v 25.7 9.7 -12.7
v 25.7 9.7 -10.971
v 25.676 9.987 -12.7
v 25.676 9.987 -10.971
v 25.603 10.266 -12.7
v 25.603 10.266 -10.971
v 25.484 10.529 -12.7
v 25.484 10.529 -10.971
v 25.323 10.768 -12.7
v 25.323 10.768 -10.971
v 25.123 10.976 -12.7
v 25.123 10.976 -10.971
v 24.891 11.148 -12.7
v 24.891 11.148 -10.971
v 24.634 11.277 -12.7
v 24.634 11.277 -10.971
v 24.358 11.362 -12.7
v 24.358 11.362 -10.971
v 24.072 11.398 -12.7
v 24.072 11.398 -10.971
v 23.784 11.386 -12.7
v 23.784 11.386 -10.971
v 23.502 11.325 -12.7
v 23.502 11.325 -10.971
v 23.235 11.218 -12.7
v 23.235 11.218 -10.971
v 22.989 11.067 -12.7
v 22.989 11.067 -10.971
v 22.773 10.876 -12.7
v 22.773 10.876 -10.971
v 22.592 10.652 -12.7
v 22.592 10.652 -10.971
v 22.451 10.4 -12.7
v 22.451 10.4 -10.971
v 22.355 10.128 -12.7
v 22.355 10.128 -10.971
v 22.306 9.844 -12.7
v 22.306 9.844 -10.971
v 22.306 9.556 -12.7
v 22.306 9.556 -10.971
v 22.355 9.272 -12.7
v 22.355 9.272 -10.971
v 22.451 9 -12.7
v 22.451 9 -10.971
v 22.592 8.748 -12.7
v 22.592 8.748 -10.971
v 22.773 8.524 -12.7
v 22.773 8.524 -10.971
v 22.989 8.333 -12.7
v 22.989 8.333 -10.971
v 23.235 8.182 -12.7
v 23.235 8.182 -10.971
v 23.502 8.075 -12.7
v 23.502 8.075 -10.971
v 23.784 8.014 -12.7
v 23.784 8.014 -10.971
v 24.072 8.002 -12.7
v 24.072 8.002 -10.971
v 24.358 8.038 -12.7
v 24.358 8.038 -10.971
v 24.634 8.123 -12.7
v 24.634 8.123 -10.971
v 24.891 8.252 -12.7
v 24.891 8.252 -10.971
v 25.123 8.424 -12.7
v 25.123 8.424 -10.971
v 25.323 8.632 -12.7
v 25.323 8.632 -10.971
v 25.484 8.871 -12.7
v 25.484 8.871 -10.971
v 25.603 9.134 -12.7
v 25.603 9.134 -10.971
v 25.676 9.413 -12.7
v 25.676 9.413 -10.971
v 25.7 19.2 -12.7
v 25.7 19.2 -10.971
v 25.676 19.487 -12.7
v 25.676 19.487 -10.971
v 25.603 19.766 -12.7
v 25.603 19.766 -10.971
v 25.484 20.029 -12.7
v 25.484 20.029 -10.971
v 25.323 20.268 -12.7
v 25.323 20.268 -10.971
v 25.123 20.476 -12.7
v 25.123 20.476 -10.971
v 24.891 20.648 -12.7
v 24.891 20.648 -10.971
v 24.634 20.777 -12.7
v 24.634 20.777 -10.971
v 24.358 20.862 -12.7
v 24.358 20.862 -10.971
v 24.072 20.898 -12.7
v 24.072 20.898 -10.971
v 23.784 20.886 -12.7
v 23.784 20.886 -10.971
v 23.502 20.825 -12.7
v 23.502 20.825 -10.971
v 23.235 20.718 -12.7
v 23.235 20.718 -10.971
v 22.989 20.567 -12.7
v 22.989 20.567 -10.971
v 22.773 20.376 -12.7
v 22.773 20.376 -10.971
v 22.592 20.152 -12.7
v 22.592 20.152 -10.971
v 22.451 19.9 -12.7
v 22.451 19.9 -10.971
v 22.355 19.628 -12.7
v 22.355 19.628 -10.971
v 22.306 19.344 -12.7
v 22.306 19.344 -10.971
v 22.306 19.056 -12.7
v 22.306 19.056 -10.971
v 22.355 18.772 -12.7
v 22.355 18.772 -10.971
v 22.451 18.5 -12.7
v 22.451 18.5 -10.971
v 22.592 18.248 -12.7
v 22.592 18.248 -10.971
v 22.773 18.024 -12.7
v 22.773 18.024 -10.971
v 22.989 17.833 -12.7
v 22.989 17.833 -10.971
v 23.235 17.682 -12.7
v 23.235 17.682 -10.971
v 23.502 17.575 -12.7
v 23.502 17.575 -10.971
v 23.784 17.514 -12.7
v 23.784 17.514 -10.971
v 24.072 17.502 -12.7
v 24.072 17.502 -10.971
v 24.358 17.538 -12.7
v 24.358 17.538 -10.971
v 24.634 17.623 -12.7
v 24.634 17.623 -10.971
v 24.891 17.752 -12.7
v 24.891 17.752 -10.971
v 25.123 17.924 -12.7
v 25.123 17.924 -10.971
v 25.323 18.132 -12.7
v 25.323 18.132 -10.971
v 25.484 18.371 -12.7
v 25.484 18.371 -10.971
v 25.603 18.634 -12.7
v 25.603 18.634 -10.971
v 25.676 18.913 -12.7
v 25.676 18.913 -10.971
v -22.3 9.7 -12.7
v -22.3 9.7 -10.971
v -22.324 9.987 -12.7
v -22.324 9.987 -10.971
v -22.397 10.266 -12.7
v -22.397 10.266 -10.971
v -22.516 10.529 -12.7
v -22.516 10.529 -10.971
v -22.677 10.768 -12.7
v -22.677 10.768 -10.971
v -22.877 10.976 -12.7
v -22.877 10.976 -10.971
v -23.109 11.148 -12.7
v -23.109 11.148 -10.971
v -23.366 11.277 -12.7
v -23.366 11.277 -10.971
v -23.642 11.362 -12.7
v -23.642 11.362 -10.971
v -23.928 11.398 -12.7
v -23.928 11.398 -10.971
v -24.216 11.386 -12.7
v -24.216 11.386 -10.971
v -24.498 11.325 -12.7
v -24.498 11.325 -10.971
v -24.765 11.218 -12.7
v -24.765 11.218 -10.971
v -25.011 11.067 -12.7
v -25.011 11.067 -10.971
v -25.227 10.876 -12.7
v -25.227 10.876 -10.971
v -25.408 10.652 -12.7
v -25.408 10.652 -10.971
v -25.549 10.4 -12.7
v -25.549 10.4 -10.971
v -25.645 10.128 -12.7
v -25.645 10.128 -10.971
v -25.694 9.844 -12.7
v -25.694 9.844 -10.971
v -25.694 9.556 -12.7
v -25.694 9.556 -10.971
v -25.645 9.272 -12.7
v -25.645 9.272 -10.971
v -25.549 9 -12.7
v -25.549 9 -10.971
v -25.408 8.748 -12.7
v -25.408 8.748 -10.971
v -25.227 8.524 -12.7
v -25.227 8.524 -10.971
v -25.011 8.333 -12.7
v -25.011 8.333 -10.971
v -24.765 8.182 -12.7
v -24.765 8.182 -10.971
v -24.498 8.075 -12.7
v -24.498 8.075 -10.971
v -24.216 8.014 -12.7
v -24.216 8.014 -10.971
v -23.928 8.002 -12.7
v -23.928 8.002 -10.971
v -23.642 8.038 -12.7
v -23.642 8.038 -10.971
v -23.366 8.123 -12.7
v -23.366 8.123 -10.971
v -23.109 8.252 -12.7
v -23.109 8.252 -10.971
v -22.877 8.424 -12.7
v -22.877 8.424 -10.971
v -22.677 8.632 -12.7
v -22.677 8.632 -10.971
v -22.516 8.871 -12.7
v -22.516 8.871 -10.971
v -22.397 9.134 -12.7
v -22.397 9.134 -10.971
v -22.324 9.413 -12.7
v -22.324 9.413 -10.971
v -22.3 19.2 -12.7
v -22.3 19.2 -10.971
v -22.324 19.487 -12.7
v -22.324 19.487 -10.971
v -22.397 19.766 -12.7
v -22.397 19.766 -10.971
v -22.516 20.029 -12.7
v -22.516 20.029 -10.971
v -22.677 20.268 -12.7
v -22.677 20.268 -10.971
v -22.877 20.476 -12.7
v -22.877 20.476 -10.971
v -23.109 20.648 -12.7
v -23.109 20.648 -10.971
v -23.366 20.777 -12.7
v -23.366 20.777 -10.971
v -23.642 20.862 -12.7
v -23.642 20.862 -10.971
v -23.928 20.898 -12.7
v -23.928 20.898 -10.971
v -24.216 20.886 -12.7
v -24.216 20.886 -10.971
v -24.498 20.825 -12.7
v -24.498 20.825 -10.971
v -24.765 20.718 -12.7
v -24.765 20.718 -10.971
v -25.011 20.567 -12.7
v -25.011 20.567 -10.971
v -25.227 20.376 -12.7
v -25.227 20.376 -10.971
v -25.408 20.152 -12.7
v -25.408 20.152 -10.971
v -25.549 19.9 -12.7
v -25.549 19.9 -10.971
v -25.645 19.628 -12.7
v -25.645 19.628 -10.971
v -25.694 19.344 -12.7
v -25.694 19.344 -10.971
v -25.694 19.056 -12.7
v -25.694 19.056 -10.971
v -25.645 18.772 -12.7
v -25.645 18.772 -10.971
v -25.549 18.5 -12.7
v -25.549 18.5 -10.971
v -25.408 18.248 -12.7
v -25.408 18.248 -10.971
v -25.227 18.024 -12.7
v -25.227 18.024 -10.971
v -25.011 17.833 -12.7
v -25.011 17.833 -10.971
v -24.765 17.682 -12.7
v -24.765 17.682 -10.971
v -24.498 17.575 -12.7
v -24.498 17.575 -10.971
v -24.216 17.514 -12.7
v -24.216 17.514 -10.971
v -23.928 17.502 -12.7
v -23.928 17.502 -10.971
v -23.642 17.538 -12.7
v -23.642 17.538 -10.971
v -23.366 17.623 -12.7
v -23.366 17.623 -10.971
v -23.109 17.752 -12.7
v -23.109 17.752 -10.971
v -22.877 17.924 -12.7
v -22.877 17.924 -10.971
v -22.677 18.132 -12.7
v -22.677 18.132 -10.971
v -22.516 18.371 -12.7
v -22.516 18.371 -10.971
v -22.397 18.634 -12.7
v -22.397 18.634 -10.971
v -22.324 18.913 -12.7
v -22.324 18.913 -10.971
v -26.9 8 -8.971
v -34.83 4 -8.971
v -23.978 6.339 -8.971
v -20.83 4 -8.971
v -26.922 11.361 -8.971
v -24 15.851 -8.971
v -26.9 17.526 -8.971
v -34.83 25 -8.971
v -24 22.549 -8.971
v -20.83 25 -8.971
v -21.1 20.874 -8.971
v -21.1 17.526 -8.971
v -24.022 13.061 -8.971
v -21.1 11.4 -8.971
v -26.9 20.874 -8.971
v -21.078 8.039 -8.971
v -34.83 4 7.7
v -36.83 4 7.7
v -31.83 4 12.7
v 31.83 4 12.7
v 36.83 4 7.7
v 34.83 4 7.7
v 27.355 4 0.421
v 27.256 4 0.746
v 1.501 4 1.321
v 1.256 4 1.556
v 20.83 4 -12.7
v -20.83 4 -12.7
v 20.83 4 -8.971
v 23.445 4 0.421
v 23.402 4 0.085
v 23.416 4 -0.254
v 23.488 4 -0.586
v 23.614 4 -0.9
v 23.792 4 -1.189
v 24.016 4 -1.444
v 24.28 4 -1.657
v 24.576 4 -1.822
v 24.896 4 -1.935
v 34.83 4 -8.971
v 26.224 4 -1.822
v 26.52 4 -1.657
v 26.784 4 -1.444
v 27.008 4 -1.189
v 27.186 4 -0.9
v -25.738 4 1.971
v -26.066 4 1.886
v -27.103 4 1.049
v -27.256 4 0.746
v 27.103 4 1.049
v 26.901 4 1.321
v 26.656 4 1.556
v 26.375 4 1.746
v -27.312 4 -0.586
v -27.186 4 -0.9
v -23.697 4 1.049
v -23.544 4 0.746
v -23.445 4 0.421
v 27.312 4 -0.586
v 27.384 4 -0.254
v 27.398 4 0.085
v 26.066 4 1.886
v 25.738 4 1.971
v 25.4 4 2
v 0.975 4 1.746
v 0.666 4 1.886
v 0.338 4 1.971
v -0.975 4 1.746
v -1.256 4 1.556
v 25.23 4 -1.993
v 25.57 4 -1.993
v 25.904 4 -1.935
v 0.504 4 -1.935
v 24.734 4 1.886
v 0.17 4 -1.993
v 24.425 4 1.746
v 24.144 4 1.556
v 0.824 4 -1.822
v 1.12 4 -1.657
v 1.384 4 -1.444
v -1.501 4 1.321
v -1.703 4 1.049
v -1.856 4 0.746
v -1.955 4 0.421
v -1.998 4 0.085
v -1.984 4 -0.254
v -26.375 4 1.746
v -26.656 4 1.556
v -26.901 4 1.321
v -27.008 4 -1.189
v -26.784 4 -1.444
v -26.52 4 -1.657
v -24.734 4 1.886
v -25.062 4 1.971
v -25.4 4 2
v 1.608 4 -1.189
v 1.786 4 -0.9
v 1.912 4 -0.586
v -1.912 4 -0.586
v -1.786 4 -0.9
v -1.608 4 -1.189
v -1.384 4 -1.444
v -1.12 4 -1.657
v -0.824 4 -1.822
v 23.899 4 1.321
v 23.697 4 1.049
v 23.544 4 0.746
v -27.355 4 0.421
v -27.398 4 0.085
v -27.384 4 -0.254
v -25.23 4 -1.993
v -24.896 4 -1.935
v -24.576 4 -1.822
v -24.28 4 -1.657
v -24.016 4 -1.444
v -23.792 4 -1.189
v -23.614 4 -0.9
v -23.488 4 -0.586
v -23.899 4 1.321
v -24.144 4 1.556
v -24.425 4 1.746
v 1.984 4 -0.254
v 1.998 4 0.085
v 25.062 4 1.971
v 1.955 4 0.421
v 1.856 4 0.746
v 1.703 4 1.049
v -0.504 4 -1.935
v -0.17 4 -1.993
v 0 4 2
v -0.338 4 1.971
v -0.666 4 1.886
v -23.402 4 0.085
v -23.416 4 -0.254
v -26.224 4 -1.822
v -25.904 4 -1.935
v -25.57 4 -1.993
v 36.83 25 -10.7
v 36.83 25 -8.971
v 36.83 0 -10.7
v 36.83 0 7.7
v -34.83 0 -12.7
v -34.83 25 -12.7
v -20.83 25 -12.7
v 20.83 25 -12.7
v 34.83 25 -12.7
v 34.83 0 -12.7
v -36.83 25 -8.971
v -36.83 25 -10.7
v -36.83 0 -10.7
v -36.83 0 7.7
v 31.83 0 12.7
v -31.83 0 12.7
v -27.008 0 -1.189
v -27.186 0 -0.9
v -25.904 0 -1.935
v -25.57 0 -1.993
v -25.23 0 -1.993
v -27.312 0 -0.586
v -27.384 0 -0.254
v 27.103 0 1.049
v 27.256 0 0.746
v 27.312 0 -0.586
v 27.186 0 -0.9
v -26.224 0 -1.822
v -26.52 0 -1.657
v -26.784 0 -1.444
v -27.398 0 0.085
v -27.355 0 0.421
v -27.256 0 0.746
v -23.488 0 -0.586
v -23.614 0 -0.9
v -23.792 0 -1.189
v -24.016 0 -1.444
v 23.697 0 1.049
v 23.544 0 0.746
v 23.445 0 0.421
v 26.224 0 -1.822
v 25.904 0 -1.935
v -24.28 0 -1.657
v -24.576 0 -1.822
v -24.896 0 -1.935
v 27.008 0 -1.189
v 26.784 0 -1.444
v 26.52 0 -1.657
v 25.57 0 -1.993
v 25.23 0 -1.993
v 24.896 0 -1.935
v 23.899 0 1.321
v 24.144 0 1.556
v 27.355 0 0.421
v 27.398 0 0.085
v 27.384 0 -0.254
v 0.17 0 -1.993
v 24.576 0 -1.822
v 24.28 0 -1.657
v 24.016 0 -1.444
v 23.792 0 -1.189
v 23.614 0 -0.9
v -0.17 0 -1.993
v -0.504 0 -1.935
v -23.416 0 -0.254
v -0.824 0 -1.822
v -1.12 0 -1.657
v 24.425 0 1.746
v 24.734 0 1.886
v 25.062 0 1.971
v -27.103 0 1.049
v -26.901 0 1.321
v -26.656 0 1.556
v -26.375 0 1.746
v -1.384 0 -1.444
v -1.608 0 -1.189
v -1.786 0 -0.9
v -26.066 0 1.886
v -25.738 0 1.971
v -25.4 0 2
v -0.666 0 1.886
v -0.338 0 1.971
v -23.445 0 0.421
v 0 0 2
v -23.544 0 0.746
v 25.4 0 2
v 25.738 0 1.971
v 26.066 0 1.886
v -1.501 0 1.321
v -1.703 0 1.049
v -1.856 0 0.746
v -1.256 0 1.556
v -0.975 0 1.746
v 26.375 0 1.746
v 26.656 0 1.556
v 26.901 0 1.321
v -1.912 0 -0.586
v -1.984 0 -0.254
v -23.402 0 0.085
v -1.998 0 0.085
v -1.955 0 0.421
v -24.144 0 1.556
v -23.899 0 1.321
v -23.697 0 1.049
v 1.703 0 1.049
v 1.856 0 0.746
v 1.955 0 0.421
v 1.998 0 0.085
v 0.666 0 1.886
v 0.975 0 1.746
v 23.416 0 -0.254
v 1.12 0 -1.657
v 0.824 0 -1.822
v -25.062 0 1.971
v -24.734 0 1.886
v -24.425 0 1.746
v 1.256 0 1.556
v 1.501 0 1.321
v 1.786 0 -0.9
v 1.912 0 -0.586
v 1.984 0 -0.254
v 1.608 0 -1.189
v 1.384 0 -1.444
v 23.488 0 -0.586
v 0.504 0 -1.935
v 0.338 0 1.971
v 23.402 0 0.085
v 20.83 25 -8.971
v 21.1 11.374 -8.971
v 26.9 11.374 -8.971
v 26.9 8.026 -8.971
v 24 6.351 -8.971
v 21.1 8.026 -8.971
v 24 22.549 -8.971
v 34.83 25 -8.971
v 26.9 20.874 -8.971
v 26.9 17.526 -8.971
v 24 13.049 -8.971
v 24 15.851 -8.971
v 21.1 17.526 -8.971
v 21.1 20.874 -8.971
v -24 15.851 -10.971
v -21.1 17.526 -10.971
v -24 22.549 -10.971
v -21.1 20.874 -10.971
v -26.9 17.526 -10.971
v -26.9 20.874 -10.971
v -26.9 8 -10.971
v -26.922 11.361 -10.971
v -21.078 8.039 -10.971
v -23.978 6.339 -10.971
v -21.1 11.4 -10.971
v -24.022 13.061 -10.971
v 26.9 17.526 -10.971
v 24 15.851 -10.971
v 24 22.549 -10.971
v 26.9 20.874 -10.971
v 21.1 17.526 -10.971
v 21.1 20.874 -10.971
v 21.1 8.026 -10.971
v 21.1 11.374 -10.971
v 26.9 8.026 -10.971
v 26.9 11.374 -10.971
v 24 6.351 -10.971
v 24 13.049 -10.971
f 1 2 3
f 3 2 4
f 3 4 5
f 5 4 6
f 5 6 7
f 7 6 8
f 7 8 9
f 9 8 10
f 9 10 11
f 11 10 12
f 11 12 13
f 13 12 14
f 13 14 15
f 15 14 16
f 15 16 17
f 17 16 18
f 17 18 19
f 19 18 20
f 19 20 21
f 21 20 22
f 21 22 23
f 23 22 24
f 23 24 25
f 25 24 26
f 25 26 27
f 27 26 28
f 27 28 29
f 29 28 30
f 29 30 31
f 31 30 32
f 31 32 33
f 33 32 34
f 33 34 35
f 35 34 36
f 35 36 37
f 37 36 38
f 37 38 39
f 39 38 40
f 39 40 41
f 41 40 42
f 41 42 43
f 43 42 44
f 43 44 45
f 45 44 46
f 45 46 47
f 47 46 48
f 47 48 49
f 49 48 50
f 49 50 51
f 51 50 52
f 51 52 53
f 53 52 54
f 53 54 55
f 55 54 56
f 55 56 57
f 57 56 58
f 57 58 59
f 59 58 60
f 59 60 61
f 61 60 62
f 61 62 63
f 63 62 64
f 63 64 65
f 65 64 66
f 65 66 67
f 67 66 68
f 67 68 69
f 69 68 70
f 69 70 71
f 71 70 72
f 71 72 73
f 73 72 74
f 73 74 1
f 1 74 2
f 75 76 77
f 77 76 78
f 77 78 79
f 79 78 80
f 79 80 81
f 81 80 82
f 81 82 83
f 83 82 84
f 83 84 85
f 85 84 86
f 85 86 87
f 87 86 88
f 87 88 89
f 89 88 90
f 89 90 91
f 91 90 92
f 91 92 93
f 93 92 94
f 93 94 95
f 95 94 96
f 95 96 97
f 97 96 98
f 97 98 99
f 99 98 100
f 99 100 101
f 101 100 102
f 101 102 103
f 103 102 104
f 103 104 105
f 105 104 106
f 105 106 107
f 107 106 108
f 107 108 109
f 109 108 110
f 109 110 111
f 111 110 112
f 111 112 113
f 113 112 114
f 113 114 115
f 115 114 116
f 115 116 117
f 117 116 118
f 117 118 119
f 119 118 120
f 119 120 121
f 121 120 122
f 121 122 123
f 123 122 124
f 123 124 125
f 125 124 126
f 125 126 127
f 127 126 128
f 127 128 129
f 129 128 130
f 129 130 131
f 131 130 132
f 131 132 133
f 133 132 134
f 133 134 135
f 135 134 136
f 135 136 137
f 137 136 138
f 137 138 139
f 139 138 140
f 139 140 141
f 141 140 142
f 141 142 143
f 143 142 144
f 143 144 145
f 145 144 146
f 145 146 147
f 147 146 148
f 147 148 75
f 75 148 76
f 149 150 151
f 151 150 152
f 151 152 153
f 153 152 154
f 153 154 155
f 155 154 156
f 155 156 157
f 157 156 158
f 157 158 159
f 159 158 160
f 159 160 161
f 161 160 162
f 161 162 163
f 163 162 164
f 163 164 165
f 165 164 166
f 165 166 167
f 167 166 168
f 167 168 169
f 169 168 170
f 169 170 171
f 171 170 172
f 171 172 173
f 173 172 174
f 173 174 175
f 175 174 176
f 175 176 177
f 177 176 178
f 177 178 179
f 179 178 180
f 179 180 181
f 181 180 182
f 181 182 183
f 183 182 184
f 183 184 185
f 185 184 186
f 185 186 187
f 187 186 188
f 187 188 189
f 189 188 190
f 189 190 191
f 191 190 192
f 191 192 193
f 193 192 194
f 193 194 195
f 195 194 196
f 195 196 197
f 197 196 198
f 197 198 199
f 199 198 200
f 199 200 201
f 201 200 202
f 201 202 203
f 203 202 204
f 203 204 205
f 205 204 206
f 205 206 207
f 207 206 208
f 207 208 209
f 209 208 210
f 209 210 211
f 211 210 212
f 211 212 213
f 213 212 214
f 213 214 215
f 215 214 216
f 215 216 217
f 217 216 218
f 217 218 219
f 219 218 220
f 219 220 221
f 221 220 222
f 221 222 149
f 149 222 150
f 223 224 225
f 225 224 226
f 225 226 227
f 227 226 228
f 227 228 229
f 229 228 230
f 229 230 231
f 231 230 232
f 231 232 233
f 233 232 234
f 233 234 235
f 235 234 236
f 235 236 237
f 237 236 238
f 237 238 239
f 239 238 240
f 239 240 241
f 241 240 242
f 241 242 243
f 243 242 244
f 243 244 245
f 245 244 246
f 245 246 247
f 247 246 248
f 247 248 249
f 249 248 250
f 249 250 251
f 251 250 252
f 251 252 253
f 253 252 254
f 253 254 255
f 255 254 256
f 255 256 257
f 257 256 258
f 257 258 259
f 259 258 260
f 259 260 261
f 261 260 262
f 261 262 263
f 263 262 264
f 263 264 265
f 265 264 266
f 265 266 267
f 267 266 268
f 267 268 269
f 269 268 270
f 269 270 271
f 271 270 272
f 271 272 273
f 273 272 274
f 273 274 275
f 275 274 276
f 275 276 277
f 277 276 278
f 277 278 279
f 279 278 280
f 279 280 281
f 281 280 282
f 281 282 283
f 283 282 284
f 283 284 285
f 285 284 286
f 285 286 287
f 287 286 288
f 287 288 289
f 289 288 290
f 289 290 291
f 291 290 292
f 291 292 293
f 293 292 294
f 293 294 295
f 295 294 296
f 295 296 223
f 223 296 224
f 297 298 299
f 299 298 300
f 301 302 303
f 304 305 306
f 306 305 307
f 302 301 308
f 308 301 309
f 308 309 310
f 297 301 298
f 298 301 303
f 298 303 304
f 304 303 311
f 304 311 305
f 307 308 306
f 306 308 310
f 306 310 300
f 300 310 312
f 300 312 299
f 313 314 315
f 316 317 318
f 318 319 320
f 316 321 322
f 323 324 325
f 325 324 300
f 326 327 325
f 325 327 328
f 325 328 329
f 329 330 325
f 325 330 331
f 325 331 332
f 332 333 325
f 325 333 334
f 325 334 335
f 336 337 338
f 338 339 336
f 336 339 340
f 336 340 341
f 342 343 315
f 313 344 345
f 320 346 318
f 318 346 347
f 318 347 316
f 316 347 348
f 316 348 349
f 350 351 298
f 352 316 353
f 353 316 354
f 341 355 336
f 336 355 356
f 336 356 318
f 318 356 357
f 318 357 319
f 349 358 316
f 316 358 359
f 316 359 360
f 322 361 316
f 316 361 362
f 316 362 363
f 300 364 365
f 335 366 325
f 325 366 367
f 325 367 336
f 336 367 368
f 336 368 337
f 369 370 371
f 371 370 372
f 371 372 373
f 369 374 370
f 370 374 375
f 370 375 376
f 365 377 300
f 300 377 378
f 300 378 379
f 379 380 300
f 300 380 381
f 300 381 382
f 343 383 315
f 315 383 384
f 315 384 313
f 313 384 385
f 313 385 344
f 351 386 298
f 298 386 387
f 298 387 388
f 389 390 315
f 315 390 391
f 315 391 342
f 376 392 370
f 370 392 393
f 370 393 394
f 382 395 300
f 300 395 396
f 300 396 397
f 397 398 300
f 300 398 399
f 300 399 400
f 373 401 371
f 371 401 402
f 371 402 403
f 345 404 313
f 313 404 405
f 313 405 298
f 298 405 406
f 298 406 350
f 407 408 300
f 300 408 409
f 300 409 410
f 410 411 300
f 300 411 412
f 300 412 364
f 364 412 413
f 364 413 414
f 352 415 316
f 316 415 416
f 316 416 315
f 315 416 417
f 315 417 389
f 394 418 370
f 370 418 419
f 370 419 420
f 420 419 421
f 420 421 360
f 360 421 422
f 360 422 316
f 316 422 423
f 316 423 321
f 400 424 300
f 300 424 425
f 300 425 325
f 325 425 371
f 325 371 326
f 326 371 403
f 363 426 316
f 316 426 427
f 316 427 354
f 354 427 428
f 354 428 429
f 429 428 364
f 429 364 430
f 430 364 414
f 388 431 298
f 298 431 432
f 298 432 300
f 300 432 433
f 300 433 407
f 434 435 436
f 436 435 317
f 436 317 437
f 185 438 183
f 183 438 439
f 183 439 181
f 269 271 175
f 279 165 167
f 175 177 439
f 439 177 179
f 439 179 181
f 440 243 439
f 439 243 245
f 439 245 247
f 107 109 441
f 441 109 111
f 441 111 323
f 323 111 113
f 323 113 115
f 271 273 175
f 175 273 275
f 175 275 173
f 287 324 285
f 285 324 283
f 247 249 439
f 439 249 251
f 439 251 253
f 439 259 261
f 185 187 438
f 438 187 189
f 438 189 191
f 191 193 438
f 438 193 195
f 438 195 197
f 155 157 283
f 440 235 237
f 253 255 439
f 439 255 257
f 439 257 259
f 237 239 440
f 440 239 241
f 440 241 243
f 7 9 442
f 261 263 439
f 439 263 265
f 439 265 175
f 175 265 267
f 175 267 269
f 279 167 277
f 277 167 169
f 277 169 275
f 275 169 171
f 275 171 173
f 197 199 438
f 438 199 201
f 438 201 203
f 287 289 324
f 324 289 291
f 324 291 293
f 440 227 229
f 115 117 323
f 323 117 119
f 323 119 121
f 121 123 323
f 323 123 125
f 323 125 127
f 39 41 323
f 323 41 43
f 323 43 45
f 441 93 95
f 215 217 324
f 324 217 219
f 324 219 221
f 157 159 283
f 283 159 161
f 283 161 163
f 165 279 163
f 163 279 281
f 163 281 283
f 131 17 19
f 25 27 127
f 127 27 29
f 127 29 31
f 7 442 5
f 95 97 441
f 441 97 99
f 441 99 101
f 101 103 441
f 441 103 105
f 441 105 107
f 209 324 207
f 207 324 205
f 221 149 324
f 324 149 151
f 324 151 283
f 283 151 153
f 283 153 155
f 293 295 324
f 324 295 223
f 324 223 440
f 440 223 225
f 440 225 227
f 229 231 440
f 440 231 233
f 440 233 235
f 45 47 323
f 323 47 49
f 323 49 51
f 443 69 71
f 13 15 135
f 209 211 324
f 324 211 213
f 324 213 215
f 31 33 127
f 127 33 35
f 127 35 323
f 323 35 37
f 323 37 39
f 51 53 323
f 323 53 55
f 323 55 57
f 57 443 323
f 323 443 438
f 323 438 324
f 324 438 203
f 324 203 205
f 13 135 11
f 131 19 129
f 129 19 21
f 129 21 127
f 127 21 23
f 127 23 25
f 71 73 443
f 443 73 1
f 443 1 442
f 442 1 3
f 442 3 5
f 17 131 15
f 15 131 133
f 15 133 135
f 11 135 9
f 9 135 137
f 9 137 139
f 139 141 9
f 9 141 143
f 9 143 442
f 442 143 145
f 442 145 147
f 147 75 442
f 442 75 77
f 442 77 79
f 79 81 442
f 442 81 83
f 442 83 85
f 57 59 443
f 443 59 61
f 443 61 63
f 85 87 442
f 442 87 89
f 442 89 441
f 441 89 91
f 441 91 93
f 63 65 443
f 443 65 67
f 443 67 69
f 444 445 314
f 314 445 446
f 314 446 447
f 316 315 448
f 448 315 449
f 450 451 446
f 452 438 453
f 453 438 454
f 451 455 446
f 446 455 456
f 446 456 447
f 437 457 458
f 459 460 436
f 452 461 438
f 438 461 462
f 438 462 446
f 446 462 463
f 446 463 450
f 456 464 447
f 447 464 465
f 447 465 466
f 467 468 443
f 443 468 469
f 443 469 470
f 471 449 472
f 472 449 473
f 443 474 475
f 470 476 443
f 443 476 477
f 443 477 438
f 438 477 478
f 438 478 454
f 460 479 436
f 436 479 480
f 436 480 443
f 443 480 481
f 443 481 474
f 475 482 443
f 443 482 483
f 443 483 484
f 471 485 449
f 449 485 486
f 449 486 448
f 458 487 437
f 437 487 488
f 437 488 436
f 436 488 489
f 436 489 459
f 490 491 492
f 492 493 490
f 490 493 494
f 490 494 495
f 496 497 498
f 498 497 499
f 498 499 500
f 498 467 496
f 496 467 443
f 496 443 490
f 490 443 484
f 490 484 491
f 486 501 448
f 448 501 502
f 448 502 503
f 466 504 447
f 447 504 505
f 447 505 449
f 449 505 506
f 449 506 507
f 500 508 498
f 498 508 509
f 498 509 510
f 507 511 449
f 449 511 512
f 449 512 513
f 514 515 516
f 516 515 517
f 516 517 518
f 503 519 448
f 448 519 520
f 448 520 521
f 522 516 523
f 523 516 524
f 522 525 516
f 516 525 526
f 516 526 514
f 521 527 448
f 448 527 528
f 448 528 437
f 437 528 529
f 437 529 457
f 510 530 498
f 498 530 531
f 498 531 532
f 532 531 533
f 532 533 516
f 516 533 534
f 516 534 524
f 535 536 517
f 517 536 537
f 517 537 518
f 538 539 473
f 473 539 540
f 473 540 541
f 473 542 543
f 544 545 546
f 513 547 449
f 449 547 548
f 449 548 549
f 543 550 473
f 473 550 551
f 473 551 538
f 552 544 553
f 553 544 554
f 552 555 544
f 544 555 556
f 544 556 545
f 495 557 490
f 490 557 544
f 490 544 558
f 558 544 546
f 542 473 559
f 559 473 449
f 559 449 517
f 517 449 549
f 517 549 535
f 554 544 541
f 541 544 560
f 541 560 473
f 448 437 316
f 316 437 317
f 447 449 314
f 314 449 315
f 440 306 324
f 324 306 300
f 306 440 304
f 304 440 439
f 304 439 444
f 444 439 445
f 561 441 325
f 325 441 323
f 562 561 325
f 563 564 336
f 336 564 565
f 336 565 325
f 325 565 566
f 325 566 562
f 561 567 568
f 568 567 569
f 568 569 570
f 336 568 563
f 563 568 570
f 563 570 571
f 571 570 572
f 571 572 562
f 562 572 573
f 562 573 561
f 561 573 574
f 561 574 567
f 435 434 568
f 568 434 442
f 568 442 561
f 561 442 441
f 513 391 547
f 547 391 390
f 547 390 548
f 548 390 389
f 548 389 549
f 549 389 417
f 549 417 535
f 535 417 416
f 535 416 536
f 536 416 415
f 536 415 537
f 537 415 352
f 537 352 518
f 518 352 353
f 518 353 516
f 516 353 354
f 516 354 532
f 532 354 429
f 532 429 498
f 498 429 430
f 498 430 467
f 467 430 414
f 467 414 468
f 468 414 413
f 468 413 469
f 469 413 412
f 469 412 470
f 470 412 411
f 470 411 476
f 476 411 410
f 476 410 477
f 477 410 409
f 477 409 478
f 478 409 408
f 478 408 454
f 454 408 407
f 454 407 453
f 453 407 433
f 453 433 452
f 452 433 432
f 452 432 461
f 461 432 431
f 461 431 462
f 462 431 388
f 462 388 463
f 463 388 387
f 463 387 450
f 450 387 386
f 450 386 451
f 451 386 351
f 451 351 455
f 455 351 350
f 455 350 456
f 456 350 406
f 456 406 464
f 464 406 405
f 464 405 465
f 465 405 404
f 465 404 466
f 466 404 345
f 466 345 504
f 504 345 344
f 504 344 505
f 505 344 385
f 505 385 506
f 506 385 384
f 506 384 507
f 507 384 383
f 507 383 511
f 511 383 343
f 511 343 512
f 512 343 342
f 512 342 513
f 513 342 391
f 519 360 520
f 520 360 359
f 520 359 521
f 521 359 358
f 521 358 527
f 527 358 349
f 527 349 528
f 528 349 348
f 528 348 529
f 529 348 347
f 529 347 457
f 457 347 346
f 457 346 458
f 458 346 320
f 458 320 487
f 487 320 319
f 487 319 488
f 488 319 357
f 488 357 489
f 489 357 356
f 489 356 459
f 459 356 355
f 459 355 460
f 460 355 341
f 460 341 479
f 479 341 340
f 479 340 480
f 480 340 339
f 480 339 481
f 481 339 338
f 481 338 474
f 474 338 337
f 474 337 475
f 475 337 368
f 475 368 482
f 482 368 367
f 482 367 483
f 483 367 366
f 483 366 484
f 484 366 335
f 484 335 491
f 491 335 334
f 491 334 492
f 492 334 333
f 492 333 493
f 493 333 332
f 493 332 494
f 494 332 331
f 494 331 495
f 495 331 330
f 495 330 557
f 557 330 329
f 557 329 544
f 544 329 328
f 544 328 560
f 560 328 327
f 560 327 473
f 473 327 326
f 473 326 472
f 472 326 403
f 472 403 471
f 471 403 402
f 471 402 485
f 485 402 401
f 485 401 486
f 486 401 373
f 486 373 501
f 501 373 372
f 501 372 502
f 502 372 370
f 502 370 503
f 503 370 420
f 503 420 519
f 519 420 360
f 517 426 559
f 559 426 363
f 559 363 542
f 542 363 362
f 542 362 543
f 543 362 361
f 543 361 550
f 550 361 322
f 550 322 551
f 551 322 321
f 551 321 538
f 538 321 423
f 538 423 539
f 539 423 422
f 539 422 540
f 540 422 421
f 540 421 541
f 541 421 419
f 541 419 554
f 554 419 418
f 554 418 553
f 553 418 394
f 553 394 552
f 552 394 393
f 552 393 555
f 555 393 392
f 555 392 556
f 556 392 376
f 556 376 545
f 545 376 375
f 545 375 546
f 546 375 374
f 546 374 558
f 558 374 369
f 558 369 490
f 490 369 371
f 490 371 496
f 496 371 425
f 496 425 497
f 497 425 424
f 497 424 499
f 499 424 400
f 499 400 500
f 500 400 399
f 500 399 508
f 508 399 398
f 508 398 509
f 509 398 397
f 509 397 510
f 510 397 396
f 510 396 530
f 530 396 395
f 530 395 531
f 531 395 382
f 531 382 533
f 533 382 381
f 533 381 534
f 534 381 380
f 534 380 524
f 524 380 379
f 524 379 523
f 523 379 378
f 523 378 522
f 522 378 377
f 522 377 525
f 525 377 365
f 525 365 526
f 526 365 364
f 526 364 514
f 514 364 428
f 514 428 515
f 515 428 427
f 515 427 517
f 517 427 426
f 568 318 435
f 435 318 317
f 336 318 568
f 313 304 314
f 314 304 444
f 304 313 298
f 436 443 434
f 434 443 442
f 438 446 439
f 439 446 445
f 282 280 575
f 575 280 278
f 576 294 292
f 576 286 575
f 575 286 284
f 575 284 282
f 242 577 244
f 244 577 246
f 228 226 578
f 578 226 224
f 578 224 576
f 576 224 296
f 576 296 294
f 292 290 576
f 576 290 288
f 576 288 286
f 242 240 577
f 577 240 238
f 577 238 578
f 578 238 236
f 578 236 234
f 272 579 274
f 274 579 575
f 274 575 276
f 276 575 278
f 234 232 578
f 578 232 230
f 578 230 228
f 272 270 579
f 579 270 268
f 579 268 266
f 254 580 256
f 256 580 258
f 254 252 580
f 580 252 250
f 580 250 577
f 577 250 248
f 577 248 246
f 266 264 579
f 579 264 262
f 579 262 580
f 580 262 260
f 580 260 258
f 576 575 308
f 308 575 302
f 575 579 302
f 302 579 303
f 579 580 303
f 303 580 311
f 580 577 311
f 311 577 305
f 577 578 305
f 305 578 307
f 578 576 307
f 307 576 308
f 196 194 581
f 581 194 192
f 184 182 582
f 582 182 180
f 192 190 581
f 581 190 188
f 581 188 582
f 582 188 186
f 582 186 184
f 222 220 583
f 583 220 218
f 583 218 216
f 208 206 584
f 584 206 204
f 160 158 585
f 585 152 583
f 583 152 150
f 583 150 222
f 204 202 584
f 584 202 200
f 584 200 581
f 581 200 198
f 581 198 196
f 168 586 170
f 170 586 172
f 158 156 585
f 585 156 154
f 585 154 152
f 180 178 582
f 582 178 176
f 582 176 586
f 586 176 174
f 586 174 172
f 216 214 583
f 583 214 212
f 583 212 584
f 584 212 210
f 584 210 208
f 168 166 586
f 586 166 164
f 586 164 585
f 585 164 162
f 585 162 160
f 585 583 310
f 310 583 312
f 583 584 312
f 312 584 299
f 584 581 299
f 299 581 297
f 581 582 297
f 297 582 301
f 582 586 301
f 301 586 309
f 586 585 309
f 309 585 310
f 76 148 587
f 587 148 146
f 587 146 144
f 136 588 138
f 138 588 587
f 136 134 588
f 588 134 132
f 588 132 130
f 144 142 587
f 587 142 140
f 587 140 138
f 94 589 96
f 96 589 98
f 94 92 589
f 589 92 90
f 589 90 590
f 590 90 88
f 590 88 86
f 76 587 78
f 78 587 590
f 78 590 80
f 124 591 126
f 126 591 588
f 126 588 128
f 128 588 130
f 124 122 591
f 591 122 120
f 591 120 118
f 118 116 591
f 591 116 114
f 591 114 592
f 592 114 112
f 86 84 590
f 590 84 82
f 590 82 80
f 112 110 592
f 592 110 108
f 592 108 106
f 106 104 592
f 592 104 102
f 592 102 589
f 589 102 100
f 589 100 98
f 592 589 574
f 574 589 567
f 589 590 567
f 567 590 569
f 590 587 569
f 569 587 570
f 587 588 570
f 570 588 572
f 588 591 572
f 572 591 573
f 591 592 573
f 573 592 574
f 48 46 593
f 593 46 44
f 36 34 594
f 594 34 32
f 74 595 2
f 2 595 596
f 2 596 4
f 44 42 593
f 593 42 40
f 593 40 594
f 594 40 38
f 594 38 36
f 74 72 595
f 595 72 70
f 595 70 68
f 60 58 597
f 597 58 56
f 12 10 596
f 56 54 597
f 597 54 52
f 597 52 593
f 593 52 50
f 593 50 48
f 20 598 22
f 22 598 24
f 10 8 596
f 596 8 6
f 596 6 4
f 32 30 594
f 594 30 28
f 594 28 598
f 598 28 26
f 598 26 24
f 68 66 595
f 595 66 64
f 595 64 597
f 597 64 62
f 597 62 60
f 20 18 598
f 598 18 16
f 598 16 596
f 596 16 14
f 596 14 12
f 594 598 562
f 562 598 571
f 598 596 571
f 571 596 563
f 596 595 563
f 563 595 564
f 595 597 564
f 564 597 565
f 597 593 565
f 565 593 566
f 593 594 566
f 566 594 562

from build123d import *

# Parameters (mm, degrees)
SKETCH1_W           = 73.66
SKETCH1_H           = 25.4
BOSS_EXTRUDE1_DEPTH = 4
CHAMFER1_SIZE       = 5
SKETCH2_R           = 2
SKETCH2_W           = 16
SKETCH2_H           = 3.728527123
BOSS_EXTRUDE2_DEPTH = 21
CUT_EXTRUDE1_START  = -31
SKETCH3_R           = 2
CUT_EXTRUDE1_DEPTH  = 31
BOSS_EXTRUDE3_DEPTH = 2
BOSS_EXTRUDE4_DEPTH = 2
CHAMFER2_SIZE       = 2
SKETCH7_R           = 1.7
CUT_EXTRUDE2_DEPTH  = 12
CUT_EXTRUDE3_DEPTH  = 2


with BuildPart() as part:
    # Sketch1 → Boss-Extrude1 (new body)
    with BuildSketch(Plane(origin=(0, 0, 0), x_dir=(1, 0, 0), z_dir=(0, 1, 0))):
        Rectangle(SKETCH1_W, SKETCH1_H)
    extrude(amount=BOSS_EXTRUDE1_DEPTH)

    # Chamfer1
    chamfer1_edges = [part.edges().sort_by_distance(p)[0] for p in [
        (36.83, 2, 12.7),
        (-36.83, 2, 12.7),
    ]]
    chamfer(chamfer1_edges, length=CHAMFER1_SIZE)

    # Sketch2 → Boss-Extrude2 (add)
    with BuildSketch(Plane(origin=(0, 4, 0), x_dir=(1, 0, 0), z_dir=(0, 1, 0))):
        with Locations(Location((-25.4, 0, 0), (0, 0, 90))):
            Circle(SKETCH2_R)
        with Locations(Location((0, 0, 0), (0, 0, 90))):
            Circle(SKETCH2_R)
        with Locations(Location((25.4, 0, 0), (0, 0, 90))):
            Circle(SKETCH2_R)
        with Locations((-28.83, 10.835736438)):
            Rectangle(SKETCH2_W, SKETCH2_H)
        with Locations((28.83, 10.835736438)):
            Rectangle(SKETCH2_W, SKETCH2_H)
    extrude(amount=BOSS_EXTRUDE2_DEPTH)

    # Sketch3 → Cut-Extrude1 (cut)
    with BuildSketch(Plane(origin=(0, 25, 0), x_dir=(1, 0, 0), z_dir=(0, 1, 0)).offset(CUT_EXTRUDE1_START)):
        with Locations(Location((-25.4, 0, 0), (0, 0, 270))):
            Circle(SKETCH3_R)
        with Locations(Location((0, 0, 0), (0, 0, 270))):
            Circle(SKETCH3_R)
        with Locations(Location((25.4, 0, 0), (0, 0, 270))):
            Circle(SKETCH3_R)
    extrude(amount=CUT_EXTRUDE1_DEPTH, mode=Mode.SUBTRACT)

    # Sketch4 → Boss-Extrude3 (add)
    with BuildSketch(Plane(origin=(36.83, 0, 0), x_dir=(0, 0, -1), z_dir=(1, 0, 0))):
        Polygon((8.971472877, 25), (-7.7, 4), (8.971472877, 4), align=None)
    extrude(amount=-BOSS_EXTRUDE3_DEPTH)

    # Sketch5 → Boss-Extrude4 (add)
    with BuildSketch(Plane.ZY.offset(36.83)):
        Polygon((-8.971472877, 25), (7.7, 4), (-8.971472877, 4), align=None)
    extrude(amount=-BOSS_EXTRUDE4_DEPTH)

    # Chamfer2
    chamfer2_edges = [part.edges().sort_by_distance(p)[0] for p in [
        (-36.83, 12.5, -12.7),
        (36.83, 12.5, -12.7),
    ]]
    chamfer(chamfer2_edges, length=CHAMFER2_SIZE)

    # Sketch7 → Cut-Extrude2 (cut)
    with BuildSketch(Plane.XY.offset(-8.971472877)):
        with Locations((-24, 19.2)):
            Circle(SKETCH7_R)
        with Locations((-24, 9.7)):
            Circle(SKETCH7_R)
        with Locations((24, 19.2)):
            Circle(SKETCH7_R)
        with Locations((24, 9.7)):
            Circle(SKETCH7_R)
    extrude(amount=-CUT_EXTRUDE2_DEPTH, mode=Mode.SUBTRACT)

    # Sketch8 → Cut-Extrude3 (cut)
    with BuildSketch(Plane.XY.offset(-8.971472877)):
        Polygon((-21.1, 17.525684219), (-21.1, 20.874315781), (-24, 22.548631561), (-26.9, 20.874315781), (-26.9, 17.525684219), (-24, 15.851368439), align=None)
        Polygon((-21.1, 11.4), (-24.022243186, 13.061473671), (-26.922243186, 11.361473671), (-26.9, 8), (-23.977756814, 6.338526329), (-21.077756814, 8.038526329), align=None)
        Polygon((21.1, 20.874315781), (21.1, 17.525684219), (24, 15.851368439), (26.9, 17.525684219), (26.9, 20.874315781), (24, 22.548631561), align=None)
        Polygon((21.1, 11.374315781), (21.1, 8.025684219), (24, 6.351368439), (26.9, 8.025684219), (26.9, 11.374315781), (24, 13.048631561), align=None)
    extrude(amount=-CUT_EXTRUDE3_DEPTH, mode=Mode.SUBTRACT)


solid = part.part
